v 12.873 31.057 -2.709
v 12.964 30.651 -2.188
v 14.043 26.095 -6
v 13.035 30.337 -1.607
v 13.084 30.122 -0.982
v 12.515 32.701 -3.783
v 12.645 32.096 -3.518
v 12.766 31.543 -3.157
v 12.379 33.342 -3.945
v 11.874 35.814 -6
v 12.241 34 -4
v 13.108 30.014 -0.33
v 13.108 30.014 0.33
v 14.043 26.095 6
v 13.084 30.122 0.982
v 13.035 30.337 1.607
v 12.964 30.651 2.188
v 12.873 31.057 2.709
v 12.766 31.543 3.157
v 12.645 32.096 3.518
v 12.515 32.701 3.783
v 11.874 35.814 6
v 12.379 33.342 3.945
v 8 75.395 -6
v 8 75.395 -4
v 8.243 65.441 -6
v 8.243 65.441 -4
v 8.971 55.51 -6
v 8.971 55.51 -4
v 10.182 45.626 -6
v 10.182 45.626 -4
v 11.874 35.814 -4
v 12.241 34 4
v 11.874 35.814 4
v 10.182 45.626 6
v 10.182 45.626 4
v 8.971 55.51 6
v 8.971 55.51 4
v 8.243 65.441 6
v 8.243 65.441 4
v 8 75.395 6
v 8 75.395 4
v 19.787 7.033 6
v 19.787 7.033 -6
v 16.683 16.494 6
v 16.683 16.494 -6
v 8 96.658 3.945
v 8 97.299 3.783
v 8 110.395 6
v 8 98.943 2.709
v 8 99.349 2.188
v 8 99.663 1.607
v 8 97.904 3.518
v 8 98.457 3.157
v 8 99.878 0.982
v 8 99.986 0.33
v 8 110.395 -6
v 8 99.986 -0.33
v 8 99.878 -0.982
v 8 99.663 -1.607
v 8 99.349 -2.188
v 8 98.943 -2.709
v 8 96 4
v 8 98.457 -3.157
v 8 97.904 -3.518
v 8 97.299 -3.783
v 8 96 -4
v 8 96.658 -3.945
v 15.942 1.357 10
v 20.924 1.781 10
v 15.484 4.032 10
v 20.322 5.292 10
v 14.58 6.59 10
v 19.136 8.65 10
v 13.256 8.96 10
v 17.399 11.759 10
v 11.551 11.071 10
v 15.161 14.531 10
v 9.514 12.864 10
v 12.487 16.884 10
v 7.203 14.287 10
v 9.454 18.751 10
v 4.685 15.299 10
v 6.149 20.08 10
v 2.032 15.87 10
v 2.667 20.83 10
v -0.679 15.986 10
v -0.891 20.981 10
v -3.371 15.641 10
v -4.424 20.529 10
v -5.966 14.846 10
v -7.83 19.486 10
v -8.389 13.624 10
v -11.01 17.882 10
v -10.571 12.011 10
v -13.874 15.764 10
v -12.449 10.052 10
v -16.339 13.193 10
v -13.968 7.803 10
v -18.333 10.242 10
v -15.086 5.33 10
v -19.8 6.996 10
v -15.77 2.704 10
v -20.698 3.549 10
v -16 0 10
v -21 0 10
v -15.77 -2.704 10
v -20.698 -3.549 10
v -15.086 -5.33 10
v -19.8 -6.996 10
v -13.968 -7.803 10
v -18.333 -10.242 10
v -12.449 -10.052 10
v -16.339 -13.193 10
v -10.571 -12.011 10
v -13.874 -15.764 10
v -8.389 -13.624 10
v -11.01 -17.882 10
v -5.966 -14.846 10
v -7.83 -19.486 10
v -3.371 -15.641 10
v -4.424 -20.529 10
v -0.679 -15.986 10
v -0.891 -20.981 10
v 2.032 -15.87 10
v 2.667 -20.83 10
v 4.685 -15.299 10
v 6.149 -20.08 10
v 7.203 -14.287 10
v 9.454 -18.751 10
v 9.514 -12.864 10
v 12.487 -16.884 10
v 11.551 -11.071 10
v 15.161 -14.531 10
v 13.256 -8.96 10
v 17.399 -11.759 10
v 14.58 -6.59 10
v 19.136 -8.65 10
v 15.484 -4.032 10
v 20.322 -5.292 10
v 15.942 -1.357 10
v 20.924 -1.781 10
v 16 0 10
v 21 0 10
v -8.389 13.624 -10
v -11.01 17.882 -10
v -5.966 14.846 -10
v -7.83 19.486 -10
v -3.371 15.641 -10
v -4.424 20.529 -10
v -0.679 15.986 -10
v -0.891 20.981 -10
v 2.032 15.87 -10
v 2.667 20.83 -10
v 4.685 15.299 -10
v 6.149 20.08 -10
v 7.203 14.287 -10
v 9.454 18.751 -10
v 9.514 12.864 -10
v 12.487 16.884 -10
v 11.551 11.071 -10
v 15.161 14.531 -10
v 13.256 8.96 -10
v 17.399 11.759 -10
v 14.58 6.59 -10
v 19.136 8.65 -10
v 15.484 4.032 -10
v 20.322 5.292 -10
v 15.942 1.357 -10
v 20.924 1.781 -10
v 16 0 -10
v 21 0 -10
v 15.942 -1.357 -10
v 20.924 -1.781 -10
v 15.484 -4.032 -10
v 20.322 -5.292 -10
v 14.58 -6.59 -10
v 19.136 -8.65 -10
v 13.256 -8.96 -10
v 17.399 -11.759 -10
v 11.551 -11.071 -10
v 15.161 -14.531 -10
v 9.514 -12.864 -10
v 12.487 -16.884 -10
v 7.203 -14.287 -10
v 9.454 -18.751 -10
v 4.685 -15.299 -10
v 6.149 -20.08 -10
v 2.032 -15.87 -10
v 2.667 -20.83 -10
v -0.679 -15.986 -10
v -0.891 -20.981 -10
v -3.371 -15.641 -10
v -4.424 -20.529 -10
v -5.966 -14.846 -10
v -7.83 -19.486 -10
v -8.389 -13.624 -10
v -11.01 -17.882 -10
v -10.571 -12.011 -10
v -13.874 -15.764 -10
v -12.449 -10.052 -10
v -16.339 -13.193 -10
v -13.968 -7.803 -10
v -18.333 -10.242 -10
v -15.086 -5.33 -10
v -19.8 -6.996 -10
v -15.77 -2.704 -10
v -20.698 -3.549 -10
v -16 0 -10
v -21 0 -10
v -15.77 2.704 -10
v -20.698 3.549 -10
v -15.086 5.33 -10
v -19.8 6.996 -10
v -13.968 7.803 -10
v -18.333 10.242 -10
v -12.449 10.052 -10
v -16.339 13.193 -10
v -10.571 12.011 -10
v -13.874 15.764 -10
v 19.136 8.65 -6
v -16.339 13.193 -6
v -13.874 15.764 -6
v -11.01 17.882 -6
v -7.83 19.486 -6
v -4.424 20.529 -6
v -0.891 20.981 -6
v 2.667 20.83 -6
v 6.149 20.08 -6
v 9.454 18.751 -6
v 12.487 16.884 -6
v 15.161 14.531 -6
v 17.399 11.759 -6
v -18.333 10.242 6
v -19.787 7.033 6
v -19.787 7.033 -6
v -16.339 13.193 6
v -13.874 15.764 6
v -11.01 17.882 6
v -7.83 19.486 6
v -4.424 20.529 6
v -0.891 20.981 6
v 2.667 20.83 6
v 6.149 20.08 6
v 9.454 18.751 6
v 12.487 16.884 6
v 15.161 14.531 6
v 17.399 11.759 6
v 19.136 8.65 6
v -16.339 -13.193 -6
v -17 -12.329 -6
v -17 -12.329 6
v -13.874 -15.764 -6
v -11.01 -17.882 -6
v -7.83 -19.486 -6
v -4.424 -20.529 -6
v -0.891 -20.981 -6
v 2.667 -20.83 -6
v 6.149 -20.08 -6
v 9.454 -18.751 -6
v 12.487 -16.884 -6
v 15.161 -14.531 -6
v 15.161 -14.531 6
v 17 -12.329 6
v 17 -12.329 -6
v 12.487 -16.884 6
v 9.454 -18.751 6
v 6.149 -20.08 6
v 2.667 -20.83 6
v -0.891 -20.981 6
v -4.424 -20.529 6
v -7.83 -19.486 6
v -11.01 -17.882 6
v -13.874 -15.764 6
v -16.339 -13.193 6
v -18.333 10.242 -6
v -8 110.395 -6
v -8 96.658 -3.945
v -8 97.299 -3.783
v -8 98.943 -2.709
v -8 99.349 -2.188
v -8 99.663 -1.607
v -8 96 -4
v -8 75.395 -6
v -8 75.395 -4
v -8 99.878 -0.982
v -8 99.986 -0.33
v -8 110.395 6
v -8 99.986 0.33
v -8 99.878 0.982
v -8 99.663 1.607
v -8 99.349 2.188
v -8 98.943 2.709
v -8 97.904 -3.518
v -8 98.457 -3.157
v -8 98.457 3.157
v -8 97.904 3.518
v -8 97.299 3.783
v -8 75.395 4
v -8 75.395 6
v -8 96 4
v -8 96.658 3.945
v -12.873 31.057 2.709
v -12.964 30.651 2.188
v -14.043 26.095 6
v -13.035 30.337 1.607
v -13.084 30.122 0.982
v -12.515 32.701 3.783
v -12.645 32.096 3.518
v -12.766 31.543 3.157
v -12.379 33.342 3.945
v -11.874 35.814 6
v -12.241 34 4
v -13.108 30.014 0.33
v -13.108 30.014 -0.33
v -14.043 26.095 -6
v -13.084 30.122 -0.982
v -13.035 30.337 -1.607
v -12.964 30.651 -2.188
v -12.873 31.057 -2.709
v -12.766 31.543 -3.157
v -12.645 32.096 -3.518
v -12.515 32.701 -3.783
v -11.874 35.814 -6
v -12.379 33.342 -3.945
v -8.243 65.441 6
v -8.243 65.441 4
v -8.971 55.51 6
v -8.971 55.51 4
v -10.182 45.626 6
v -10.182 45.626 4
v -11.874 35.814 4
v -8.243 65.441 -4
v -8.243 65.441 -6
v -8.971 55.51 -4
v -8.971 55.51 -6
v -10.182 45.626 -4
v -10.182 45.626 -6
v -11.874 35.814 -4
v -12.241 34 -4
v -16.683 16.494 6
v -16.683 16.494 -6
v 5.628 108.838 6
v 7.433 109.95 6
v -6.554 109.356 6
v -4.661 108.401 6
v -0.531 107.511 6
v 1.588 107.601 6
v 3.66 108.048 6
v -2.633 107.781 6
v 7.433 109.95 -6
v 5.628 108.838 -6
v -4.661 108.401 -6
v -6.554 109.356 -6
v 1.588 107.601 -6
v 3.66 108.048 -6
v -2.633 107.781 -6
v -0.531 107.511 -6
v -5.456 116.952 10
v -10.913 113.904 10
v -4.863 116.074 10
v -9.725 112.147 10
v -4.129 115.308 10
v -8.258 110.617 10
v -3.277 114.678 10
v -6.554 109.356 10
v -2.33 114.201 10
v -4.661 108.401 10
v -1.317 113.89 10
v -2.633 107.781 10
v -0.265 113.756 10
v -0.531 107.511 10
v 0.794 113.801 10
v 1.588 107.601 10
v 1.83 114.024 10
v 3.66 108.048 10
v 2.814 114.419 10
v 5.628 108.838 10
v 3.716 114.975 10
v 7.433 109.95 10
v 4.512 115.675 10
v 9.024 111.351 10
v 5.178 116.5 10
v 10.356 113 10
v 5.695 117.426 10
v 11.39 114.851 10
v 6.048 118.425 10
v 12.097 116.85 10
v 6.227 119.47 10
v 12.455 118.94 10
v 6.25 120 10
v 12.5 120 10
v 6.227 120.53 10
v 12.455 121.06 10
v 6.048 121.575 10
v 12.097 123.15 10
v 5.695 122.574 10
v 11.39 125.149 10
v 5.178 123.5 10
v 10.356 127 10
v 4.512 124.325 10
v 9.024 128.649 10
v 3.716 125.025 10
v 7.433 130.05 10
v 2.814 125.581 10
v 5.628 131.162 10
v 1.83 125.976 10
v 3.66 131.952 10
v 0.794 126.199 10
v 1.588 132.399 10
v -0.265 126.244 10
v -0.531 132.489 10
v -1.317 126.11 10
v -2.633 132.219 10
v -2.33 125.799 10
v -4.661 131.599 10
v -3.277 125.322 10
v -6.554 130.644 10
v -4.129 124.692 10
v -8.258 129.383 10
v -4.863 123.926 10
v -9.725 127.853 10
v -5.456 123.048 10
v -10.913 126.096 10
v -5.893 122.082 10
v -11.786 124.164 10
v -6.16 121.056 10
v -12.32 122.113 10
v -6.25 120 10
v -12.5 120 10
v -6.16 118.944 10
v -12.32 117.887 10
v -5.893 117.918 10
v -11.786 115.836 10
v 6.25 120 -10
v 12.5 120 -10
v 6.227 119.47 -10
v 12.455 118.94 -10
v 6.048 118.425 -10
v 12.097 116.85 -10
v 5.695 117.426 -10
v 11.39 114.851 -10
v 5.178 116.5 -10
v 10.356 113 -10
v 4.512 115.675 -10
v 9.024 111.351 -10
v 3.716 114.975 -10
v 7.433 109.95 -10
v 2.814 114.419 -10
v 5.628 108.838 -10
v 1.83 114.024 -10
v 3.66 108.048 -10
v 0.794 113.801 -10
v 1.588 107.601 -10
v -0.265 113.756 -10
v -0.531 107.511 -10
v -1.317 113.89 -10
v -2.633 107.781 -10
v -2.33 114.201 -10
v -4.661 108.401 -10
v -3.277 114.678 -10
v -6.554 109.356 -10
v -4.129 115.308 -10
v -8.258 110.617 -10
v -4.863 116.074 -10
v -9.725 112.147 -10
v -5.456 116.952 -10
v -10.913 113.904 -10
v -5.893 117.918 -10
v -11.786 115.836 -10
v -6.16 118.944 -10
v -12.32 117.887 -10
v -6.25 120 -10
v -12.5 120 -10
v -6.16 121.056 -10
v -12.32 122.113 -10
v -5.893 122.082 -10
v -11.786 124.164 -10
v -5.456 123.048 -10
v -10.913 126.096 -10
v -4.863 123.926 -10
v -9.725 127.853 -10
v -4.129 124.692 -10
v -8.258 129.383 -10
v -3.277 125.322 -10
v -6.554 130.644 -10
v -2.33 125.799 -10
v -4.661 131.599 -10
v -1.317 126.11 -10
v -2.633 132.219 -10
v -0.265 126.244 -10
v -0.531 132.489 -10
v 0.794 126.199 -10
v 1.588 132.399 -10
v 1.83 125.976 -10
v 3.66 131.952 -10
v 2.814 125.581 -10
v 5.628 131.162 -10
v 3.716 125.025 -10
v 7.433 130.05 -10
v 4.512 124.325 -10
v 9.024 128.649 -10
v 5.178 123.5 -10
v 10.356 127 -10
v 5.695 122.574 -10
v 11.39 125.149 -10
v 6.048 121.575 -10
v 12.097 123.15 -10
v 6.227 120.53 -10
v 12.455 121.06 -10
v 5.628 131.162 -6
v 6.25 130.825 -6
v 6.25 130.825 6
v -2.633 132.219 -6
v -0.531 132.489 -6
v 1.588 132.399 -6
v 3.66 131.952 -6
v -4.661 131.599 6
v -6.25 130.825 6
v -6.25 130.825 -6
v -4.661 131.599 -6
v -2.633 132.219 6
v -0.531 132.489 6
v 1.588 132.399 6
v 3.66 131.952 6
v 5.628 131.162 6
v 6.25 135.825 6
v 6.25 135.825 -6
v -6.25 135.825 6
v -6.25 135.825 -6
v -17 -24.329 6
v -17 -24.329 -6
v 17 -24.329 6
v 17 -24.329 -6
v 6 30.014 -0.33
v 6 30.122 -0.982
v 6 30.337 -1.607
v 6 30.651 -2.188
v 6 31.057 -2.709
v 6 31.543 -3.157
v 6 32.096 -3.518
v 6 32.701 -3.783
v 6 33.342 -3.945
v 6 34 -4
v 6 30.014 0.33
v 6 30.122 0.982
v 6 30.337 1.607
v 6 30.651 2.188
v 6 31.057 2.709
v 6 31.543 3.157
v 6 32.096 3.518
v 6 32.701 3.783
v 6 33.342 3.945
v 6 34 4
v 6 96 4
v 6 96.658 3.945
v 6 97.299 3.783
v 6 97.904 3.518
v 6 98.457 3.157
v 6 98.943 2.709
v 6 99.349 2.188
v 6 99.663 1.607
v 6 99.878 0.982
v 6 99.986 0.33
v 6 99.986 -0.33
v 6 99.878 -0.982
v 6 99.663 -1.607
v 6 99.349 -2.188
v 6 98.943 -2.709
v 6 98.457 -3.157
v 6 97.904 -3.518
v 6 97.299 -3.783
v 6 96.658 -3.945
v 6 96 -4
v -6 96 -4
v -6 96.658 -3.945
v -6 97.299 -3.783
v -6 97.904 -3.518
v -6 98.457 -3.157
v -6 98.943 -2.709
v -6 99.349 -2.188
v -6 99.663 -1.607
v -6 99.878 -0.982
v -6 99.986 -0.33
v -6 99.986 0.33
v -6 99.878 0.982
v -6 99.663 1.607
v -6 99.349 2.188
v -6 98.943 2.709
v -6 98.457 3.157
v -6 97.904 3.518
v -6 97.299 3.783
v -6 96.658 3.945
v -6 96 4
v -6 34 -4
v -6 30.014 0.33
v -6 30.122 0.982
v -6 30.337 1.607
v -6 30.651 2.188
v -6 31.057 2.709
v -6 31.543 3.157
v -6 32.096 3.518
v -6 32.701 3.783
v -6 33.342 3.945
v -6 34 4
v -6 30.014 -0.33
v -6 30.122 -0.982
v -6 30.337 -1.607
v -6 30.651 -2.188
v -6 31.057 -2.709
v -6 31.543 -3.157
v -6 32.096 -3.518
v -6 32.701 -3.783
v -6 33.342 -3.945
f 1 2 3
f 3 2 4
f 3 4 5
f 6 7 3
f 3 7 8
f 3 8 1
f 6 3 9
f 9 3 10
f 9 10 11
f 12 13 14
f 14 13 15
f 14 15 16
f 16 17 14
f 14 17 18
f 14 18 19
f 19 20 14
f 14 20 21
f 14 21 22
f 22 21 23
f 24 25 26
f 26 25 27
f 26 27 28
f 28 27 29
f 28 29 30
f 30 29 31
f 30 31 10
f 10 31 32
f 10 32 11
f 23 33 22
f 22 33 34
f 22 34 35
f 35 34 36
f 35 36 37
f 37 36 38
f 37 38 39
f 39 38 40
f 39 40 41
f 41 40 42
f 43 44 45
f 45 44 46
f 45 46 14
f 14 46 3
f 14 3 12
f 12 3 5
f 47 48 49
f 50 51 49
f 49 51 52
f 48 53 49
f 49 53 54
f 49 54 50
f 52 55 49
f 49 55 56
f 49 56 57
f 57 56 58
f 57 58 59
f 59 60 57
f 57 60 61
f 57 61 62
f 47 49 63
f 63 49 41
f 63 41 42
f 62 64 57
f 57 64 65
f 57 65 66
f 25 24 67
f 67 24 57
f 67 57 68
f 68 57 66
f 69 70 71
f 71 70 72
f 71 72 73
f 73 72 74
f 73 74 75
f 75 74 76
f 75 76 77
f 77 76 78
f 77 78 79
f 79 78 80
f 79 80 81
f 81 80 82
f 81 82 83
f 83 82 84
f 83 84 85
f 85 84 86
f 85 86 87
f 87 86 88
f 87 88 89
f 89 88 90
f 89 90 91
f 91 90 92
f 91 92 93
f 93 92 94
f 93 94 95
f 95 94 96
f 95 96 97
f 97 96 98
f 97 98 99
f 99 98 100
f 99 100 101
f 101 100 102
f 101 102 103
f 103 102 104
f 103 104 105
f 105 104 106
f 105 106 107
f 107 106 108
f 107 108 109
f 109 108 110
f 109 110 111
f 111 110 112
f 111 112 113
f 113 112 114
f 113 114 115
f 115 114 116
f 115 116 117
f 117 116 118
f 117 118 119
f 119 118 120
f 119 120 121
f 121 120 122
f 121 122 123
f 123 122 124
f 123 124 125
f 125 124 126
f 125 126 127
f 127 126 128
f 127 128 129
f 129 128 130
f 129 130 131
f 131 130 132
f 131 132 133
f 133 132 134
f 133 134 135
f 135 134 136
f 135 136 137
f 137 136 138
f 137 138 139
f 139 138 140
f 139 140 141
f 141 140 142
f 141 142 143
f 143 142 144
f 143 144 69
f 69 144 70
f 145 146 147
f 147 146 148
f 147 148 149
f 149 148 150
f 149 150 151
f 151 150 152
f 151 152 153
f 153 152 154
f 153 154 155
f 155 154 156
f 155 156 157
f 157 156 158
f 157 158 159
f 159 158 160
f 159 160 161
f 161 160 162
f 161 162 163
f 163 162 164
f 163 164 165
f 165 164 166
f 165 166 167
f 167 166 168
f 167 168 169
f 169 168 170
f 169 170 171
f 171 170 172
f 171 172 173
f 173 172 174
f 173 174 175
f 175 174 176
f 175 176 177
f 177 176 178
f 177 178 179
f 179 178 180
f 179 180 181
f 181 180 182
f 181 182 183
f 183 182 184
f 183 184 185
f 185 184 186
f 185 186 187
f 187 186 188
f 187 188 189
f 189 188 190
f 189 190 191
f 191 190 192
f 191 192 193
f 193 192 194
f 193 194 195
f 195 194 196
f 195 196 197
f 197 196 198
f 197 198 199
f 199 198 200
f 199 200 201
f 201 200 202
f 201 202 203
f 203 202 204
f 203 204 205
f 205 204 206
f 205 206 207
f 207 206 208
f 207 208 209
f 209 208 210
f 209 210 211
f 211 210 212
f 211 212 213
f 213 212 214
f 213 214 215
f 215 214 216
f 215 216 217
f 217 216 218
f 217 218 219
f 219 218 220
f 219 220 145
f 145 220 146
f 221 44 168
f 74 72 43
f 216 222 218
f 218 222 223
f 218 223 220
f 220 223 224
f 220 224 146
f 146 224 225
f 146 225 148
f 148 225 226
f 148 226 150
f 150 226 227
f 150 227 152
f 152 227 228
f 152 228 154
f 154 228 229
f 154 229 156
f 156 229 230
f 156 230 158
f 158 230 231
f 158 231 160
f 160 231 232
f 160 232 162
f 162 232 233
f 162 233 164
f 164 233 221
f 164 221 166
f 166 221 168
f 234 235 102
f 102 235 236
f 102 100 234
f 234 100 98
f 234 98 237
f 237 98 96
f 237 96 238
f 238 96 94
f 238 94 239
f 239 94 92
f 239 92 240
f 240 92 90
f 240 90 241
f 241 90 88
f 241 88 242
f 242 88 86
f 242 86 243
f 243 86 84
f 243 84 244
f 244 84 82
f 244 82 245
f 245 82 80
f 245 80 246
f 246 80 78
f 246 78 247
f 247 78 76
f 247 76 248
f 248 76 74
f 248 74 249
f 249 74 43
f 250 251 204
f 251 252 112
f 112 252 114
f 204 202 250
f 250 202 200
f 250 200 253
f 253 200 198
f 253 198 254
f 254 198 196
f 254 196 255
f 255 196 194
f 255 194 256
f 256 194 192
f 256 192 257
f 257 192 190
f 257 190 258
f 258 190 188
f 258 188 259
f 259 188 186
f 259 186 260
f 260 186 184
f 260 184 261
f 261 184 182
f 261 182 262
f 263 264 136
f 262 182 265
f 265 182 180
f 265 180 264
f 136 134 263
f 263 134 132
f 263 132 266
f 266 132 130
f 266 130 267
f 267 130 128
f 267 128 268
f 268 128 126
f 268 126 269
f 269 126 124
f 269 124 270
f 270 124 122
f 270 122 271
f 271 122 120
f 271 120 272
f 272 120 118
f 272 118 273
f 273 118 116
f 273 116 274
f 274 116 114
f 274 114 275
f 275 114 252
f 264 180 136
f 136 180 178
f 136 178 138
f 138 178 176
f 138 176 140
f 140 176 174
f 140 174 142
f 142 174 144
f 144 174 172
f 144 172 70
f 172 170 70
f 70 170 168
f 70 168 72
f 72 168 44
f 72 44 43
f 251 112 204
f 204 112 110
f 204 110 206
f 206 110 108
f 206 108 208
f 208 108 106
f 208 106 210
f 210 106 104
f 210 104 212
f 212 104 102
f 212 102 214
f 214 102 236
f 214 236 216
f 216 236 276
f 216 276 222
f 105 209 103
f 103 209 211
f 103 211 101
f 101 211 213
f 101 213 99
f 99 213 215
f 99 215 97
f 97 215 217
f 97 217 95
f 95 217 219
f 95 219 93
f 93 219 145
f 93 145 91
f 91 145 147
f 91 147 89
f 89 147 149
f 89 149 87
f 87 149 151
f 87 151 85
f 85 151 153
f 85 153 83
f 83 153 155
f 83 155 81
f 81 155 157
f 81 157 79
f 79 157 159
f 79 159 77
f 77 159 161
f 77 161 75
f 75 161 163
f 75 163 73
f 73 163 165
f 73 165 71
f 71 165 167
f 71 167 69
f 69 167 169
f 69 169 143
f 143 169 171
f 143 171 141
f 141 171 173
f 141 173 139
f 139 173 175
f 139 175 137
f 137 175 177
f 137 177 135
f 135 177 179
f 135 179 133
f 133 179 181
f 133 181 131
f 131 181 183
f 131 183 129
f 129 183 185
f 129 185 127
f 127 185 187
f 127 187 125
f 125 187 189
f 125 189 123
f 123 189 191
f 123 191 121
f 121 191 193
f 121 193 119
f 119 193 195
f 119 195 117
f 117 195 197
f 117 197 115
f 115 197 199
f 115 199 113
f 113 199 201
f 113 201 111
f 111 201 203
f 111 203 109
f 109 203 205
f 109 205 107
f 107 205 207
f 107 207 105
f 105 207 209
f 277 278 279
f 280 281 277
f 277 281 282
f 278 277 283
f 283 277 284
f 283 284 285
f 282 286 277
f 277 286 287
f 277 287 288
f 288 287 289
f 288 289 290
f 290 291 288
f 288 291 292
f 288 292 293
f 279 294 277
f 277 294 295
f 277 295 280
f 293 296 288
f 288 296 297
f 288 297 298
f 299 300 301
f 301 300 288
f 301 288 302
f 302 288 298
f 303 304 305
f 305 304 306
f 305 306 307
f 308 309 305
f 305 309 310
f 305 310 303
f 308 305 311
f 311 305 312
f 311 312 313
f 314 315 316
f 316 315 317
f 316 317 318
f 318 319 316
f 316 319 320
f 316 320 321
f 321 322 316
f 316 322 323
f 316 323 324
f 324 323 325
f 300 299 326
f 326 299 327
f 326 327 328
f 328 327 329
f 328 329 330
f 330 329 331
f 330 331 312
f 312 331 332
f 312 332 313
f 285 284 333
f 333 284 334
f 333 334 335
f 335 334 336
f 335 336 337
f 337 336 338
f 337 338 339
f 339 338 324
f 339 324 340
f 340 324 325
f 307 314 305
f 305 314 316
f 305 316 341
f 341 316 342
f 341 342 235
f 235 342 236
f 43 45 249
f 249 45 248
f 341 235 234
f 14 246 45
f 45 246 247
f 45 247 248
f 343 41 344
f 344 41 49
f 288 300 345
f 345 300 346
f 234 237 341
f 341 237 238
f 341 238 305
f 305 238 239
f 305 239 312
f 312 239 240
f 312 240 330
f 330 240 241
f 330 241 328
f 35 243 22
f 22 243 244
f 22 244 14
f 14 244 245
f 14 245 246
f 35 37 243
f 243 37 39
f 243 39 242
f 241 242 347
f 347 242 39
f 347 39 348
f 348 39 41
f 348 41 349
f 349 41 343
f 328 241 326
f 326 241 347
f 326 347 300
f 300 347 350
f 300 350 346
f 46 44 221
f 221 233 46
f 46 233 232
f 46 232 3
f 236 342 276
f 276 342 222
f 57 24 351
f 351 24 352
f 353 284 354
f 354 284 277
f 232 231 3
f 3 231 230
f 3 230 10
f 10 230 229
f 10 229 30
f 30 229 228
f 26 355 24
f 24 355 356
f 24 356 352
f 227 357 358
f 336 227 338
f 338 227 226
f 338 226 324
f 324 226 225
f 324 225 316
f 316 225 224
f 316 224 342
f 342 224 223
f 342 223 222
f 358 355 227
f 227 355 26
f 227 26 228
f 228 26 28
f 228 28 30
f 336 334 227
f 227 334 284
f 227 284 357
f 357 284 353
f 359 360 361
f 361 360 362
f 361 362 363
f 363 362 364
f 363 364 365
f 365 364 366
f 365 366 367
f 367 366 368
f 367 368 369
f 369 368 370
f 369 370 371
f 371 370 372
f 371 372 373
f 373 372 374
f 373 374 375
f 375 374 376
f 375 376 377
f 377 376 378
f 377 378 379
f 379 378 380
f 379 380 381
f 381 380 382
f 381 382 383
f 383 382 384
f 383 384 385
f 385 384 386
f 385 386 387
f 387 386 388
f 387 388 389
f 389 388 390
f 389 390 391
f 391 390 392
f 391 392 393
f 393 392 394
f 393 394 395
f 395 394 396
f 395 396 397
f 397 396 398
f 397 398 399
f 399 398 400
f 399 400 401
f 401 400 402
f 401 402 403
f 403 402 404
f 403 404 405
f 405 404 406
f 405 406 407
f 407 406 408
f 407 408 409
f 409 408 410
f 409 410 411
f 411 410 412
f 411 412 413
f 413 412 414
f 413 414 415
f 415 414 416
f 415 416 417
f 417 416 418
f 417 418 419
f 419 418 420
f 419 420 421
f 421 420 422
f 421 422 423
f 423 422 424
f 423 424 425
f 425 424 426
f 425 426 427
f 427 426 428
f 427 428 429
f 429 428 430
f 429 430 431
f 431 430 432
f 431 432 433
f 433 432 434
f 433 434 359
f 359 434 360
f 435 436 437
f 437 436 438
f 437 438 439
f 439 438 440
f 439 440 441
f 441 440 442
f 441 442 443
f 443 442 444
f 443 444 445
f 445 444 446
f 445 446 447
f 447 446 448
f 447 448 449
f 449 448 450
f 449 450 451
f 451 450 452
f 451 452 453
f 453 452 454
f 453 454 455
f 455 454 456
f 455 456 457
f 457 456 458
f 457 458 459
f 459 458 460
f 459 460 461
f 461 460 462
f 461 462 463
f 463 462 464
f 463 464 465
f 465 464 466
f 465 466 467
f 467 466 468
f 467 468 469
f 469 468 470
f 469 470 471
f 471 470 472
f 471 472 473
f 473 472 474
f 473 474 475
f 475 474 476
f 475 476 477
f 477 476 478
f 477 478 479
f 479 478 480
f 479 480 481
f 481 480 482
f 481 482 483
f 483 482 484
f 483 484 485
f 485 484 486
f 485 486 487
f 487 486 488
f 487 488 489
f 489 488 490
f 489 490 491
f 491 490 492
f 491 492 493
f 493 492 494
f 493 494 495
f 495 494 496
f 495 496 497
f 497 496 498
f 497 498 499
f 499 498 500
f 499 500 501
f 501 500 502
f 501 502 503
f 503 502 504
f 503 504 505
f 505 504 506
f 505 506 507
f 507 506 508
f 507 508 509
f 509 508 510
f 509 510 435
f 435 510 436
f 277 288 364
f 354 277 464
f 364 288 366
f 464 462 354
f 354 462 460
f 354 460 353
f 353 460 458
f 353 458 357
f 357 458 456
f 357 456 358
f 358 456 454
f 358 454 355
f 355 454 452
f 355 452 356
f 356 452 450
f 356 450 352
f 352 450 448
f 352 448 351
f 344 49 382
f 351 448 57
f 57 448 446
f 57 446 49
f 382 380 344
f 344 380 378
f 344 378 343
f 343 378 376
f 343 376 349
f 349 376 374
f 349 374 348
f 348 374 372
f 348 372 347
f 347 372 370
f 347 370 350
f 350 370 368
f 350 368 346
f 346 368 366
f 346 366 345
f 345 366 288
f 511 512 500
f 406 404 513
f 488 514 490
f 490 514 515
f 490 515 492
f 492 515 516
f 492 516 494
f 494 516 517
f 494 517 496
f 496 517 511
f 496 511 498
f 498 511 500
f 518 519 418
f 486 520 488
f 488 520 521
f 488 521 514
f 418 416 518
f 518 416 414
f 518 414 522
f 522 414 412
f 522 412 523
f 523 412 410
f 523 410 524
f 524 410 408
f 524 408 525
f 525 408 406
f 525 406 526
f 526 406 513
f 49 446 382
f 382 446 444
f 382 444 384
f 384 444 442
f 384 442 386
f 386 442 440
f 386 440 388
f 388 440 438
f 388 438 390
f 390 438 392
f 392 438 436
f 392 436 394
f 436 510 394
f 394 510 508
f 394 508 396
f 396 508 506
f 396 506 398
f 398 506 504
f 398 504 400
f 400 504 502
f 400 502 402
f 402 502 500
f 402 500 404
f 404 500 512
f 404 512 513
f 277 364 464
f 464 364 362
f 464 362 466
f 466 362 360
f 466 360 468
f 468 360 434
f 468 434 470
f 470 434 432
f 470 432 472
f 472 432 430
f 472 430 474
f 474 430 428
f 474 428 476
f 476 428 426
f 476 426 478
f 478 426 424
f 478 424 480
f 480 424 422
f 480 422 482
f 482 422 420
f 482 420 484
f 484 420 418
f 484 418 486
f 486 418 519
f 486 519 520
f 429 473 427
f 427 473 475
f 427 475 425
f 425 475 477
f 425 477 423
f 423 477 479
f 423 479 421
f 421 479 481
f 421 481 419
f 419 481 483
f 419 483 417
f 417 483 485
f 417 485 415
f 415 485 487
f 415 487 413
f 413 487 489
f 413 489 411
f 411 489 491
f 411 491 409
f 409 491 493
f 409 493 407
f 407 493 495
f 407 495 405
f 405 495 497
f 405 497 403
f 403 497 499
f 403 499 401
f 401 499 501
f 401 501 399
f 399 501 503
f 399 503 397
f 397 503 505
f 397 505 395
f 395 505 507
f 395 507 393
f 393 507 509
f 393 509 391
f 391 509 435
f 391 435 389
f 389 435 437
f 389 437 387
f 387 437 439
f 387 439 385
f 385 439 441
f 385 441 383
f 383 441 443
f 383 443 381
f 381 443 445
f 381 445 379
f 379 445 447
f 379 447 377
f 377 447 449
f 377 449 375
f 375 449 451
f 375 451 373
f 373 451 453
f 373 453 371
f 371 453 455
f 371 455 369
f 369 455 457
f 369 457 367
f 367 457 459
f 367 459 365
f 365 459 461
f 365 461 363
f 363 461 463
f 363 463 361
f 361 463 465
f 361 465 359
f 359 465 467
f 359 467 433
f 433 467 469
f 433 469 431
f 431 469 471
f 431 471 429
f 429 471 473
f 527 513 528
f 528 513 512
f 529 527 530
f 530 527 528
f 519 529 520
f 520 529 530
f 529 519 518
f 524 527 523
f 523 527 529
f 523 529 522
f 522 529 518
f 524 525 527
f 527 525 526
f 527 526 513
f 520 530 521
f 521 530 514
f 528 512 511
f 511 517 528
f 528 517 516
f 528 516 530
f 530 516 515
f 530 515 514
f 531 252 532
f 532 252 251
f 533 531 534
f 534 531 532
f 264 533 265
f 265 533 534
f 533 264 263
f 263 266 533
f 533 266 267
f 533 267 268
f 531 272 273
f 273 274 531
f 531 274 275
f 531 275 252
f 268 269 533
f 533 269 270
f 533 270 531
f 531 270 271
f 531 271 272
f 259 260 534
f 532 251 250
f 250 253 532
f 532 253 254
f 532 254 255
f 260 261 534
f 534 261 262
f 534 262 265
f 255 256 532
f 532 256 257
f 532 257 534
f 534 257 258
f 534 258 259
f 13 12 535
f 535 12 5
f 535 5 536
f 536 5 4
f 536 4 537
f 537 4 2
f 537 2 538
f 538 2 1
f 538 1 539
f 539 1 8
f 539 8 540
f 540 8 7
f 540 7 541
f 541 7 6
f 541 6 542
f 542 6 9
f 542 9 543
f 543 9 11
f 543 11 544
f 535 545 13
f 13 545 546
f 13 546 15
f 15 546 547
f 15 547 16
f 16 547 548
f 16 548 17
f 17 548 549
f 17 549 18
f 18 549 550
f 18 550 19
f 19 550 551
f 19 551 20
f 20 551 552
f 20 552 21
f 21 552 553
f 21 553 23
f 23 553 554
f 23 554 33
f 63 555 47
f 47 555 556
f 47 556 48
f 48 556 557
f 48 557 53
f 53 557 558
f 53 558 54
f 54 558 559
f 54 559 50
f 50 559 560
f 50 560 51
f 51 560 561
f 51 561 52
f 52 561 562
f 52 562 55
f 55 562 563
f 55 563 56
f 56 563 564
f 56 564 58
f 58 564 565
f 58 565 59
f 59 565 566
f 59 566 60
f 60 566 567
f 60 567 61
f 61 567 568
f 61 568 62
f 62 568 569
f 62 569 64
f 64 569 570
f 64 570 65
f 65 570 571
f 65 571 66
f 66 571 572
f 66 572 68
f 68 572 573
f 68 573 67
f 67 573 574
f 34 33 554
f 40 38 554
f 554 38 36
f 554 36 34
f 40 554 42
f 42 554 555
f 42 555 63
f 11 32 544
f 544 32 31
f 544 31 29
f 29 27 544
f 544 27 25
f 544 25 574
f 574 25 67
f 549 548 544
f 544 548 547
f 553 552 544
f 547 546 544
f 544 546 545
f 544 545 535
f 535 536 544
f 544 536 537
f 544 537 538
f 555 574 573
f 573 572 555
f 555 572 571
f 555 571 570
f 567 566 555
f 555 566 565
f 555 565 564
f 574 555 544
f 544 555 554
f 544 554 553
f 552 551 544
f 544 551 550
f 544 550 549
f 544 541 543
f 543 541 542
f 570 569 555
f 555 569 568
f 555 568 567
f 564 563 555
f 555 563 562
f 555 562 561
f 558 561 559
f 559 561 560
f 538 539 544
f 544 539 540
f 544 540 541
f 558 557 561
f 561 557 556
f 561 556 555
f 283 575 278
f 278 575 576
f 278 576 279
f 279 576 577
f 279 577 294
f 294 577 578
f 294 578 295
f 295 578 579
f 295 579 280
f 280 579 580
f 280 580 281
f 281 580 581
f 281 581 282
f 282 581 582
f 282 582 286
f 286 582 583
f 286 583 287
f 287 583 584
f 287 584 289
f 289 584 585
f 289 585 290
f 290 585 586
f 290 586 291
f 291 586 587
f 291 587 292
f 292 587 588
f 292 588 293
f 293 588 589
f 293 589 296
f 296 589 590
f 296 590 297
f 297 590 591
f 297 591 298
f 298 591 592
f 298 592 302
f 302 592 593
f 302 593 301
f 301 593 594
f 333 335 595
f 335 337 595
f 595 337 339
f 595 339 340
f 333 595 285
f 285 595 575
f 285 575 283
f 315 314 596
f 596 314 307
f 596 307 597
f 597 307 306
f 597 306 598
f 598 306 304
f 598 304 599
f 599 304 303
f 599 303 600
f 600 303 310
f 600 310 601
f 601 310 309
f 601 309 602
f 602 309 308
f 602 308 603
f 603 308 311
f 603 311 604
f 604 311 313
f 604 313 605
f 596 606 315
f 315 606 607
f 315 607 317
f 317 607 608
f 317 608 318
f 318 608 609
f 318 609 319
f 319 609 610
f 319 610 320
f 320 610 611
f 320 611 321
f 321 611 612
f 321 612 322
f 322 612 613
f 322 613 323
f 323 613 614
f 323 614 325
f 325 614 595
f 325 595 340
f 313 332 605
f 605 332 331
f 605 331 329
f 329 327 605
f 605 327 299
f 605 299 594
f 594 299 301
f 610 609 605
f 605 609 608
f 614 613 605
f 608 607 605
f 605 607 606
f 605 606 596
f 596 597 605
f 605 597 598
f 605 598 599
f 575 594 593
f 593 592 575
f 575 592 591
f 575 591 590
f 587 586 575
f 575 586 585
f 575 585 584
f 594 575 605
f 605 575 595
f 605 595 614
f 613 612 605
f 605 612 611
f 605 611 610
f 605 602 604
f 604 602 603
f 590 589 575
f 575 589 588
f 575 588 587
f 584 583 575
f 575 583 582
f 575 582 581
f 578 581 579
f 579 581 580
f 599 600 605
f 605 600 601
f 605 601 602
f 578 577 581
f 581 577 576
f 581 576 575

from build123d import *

# Parameters (mm, degrees)
SKETCH2_R             = 21
SKETCH2_R_2           = 16
BOSS_EXTRUDE1_DEPTH   = 10
SKETCH2_R_3           = 12.5
SKETCH2_R_4           = 6.25
BOSS_EXTRUDE1_2_DEPTH = 10
BOSS_EXTRUDE2_DEPTH   = 6
BOSS_EXTRUDE3_DEPTH   = 6
CUT_EXTRUDE1_DEPTH    = 62


with BuildPart() as part:
    # Sketch2 → Boss-Extrude1 (new, symmetric)
    with BuildSketch(Plane.XY):
        Circle(SKETCH2_R)
        Circle(SKETCH2_R_2, mode=Mode.SUBTRACT)
    extrude(amount=BOSS_EXTRUDE1_DEPTH, both=True)



with BuildPart() as body_2:
    # Sketch2 → Boss-Extrude1 2 (new, symmetric)
    with BuildSketch(Plane.XY):
        with Locations((0, 120)):
            Circle(SKETCH2_R_3)
        with Locations((0, 120)):
            Circle(SKETCH2_R_4, mode=Mode.SUBTRACT)
    extrude(amount=BOSS_EXTRUDE1_2_DEPTH, both=True)


with BuildPart() as part_1:
    add(part.part)

    add(body_2.part)  # Boss-Extrude2 merges body 2
    # Sketch3 → Boss-Extrude2 (add, symmetric)
    with BuildSketch(Plane.XY):
        with BuildLine():
            Line((-8, 110.395313644), (-8, 75.395313644))
            ThreePointArc((-8, 75.395313644), (-10.96842855, 40.709642053), (-19.787382488, 7.032744434))
            ThreePointArc((-19.787382488, 7.032744434), (0, 21), (19.787382488, 7.032744434))
            ThreePointArc((19.787382488, 7.032744434), (10.96842855, 40.709642053), (8, 75.395313644))
            Line((8, 75.395313644), (8, 110.395313644))
            ThreePointArc((8, 110.395313644), (0, 107.5), (-8, 110.395313644))
        make_face()
    extrude(amount=BOSS_EXTRUDE2_DEPTH, both=True)

    # Sketch4 → Boss-Extrude3 (add, symmetric)
    with BuildSketch(Plane.XY):
        with BuildLine():
            Line((0, 132.5), (0, 135.825317547))
            Line((0, 135.825317547), (-6.25, 135.825317547))
            Line((-6.25, 135.825317547), (-6.25, 130.825317547))
            ThreePointArc((-6.25, 130.825317547), (-3.235238064, 132.074072829), (0, 132.5))
        make_face()
        with BuildLine():
            Line((6.25, 135.825317547), (0, 135.825317547))
            Line((0, 135.825317547), (0, 132.5))
            ThreePointArc((0, 132.5), (3.235238064, 132.074072829), (6.25, 130.825317547))
            Line((6.25, 130.825317547), (6.25, 135.825317547))
        make_face()
        with BuildLine():
            ThreePointArc((-17, -12.328828006), (0, -21), (17, -12.328828006))
            Line((17, -12.328828006), (17, -24.328828006))
            Line((17, -24.328828006), (-17, -24.328828006))
            Line((-17, -24.328828006), (-17, -12.328828006))
        make_face()
    extrude(amount=BOSS_EXTRUDE3_DEPTH, both=True)

    # Sketch5 → Cut-Extrude1 (cut)
    with BuildSketch(Plane(origin=(6, 0, 0), x_dir=(0, 0, -1), z_dir=(1, 0, 0))):
        with BuildLine():
            Line((4, 96), (4, 34))
            ThreePointArc((4, 34), (0, 30), (-4, 34))
            Line((-4, 34), (-4, 96))
            ThreePointArc((-4, 96), (0, 100), (4, 96))
        make_face()
    cut_extrude1 = extrude(amount=CUT_EXTRUDE1_DEPTH, mode=Mode.SUBTRACT)

    # Mirror1: Cut-Extrude1 across plane
    add(cut_extrude1.mirror(Plane(origin=(0, 0, 0), x_dir=(0, 0, 1), z_dir=(1, 0, 0))), mode=Mode.SUBTRACT)


solid = part_1.part
